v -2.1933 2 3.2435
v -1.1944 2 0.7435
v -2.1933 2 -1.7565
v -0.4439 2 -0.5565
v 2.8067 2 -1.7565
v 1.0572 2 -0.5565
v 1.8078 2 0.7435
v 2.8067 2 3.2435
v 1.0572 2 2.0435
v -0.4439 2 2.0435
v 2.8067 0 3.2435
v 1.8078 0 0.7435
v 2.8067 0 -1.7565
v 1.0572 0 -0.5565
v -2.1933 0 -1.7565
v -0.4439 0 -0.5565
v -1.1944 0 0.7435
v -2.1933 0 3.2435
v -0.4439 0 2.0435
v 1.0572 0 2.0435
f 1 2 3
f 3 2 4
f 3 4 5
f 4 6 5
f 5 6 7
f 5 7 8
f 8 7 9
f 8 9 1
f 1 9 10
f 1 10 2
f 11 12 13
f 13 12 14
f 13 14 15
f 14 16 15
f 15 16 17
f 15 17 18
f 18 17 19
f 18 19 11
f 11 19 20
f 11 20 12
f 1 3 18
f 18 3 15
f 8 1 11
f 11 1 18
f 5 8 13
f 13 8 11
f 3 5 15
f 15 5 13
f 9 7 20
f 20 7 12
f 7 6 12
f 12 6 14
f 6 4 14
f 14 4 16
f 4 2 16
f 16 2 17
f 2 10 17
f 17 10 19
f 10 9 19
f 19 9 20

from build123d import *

# Parameters (mm, degrees)
CROQUIS1_W              = 5
CROQUIS1_H              = 5
SALIENTE_EXTRUIR1_DEPTH = 2


with BuildPart() as part:
    # Croquis1 → Saliente-Extruir1 (new body)
    with BuildSketch(Plane(origin=(0, 0, 0), x_dir=(1, 0, 0), z_dir=(0, 1, 0))):
        with Locations((0.30669145, -0.743494424)):
            Rectangle(CROQUIS1_W, CROQUIS1_H)
        Polygon((1.80780215, -0.743494424), (1.0572468, 0.556505576), (-0.4438639, 0.556505576), (-1.19441925, -0.743494424), (-0.4438639, -2.043494424), (1.0572468, -2.043494424), align=None, mode=Mode.SUBTRACT)
    extrude(amount=SALIENTE_EXTRUIR1_DEPTH)


solid = part.part
